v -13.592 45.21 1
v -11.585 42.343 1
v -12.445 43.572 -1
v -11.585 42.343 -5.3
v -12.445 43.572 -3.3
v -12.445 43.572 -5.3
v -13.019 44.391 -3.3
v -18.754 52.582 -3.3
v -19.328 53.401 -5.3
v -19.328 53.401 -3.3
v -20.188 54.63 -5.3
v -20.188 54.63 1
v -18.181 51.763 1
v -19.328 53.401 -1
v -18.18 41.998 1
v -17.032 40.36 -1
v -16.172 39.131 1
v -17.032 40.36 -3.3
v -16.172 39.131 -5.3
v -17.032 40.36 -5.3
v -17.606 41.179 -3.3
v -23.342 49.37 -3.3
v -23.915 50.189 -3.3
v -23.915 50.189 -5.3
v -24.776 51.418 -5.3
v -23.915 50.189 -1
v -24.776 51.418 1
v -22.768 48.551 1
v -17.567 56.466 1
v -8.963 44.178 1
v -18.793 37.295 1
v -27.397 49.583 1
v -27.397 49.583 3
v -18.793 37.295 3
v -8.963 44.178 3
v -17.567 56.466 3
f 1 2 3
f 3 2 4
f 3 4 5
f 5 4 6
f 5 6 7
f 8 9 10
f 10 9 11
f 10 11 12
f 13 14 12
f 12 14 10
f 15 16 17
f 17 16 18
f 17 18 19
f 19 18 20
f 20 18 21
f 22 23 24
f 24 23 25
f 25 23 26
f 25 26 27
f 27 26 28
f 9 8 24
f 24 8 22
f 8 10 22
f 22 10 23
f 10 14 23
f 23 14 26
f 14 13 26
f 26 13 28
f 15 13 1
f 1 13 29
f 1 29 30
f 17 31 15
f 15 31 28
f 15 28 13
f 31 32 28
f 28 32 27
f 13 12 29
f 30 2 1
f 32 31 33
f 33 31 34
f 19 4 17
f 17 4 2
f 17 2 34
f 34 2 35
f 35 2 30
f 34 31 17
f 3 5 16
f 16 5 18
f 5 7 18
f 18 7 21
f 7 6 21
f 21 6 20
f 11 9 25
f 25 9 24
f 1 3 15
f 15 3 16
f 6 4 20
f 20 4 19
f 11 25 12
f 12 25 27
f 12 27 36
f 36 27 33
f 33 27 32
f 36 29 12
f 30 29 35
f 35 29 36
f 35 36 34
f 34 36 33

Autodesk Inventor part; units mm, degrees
ref_plane "YZ Plane" through (0, 0, 0) normal (1, 0, 0) x (0, 1, 0)
ref_plane "XZ Plane" through (0, 0, 0) normal (0, 1, 0) x (-1, 0, 0)
ref_plane "XY Plane" through (0, 0, 0) normal (0, 0, 1) x (1, 0, 0)
ref_plane "Arbeitsebene1" through (8.2312, -3.2392, 2) normal (0, 0, 1) x (1, 0, 0)
sketch "Skizze1" plane through (8.2312, -3.2392, 2) normal (0, 0, 1) x (1, 0, 0)
  arc A0 (-29.666, 52.3362) -> (-30.2278, 49.15) centre (-26.4114, 50.1197) ccw projected
  line L0 (-30.4697, 49.0886) -> (-31.8651, 51.0813) projected
  line L1 (-27.3731, 44.6661) -> (-28.7684, 46.6589) projected
  line L2 (-25.3803, 46.0614) -> (-27.3731, 44.6661) projected
  spline S0 degree 3 poles (-25.3803, 46.0614) (-25.4758, 46.0372) (-25.5717, 46.0164) (-25.765, 45.9815) (-25.8623, 45.9675) (-25.9823, 45.9545) (-26.0046, 45.9522) (-26.0633, 45.9468) (-26.0993, 45.944) (-26.1701, 45.9393) (-26.2048, 45.9374) (-26.2421, 45.9359) (-26.244, 45.9358) (-26.3578, 45.9313) (-26.4696, 45.9314) (-26.6928, 45.9405) (-26.8042, 45.9495) (-26.9899, 45.972) (-27.0643, 45.983) (-27.2355, 46.0132) (-27.3315, 46.0336) (-27.5218, 46.0812) (-27.6161, 46.1083) (-27.7358, 46.1473) (-27.7619, 46.1561) (-27.8204, 46.1765) (-27.8532, 46.1884) (-27.9183, 46.2129) (-27.9507, 46.2255) (-27.9876, 46.2405) (-27.9928, 46.2426) (-28.0892, 46.282) (-28.1788, 46.3225) (-28.3547, 46.4094) (-28.4411, 46.456) (-28.6083, 46.5538) (-28.6891, 46.6048) (-28.7684, 46.6589) knots 0 0 0 0 0.084049 0.084049 0.16831 0.16831 0.1875 0.1875 0.21875 0.21875 0.248427 0.248427 0.25 0.25 0.343462 0.343462 0.437098 0.437098 0.5 0.5 0.582124 0.582124 0.664424 0.664424 0.6875 0.6875 0.716281 0.716281 0.74522 0.74522 0.75 0.75 0.834095 0.834095 0.918237 0.918237 1 1 1 1 projected
  line L3 (-20.9578, 49.1581) -> (-22.9506, 47.7627) projected
  line L4 (-22.3532, 51.1509) -> (-20.9578, 49.1581) projected
  spline S1 degree 3 poles (-22.3532, 51.1509) (-22.3289, 51.0554) (-22.3081, 50.9594) (-22.2732, 50.7662) (-22.2592, 50.6689) (-22.2462, 50.5488) (-22.244, 50.5265) (-22.2385, 50.4679) (-22.2357, 50.4318) (-22.231, 50.3611) (-22.2292, 50.3263) (-22.2276, 50.289) (-22.2276, 50.2871) (-22.2231, 50.1733) (-22.2231, 50.0616) (-22.2322, 49.8384) (-22.2412, 49.727) (-22.2637, 49.5413) (-22.2747, 49.4668) (-22.3049, 49.2957) (-22.3254, 49.1997) (-22.3729, 49.0094) (-22.4, 48.915) (-22.4391, 48.7954) (-22.4479, 48.7693) (-22.4682, 48.7107) (-22.4801, 48.678) (-22.5046, 48.6128) (-22.5173, 48.5804) (-22.5322, 48.5436) (-22.5343, 48.5384) (-22.5738, 48.442) (-22.6142, 48.3524) (-22.7012, 48.1764) (-22.7477, 48.09) (-22.8455, 47.9229) (-22.8966, 47.842) (-22.9506, 47.7627) knots 0 0 0 0 0.084049 0.084049 0.16831 0.16831 0.1875 0.1875 0.21875 0.21875 0.248427 0.248427 0.25 0.25 0.343462 0.343462 0.437098 0.437098 0.5 0.5 0.582124 0.582124 0.664424 0.664424 0.6875 0.6875 0.716281 0.716281 0.74522 0.74522 0.75 0.75 0.834095 0.834095 0.918237 0.918237 1 1 1 1 projected
  line L5 (-25.4498, 55.5734) -> (-24.0545, 53.5806) projected
  line L6 (-27.4426, 54.178) -> (-25.4498, 55.5734) projected
  spline S2 degree 3 poles (-27.4426, 54.178) (-27.3471, 54.2023) (-27.2511, 54.2231) (-27.0579, 54.2579) (-26.9606, 54.272) (-26.8406, 54.285) (-26.8183, 54.2872) (-26.7596, 54.2926) (-26.7236, 54.2955) (-26.6528, 54.3001) (-26.6181, 54.302) (-26.5807, 54.3035) (-26.5789, 54.3036) (-26.4651, 54.3081) (-26.3533, 54.308) (-26.1301, 54.299) (-26.0187, 54.29) (-25.833, 54.2675) (-25.7586, 54.2564) (-25.5874, 54.2262) (-25.4914, 54.2058) (-25.3011, 54.1582) (-25.2067, 54.1311) (-25.0871, 54.0921) (-25.061, 54.0833) (-25.0025, 54.0629) (-24.9697, 54.0511) (-24.9046, 54.0266) (-24.8722, 54.0139) (-24.8353, 53.999) (-24.8301, 53.9969) (-24.7337, 53.9574) (-24.6441, 53.917) (-24.4681, 53.83) (-24.3817, 53.7835) (-24.2146, 53.6857) (-24.1337, 53.6346) (-24.0545, 53.5806) knots 0 0 0 0 0.084049 0.084049 0.16831 0.16831 0.1875 0.1875 0.21875 0.21875 0.248427 0.248427 0.25 0.25 0.343462 0.343462 0.437098 0.437098 0.5 0.5 0.582124 0.582124 0.664424 0.664424 0.6875 0.6875 0.716281 0.716281 0.74522 0.74522 0.75 0.75 0.834095 0.834095 0.918237 0.918237 1 1 1 1 projected
  line L7 (-27.0245, 40.5346) -> (-35.6282, 52.8219)
  line L8 (-35.6282, 52.8219) -> (-25.7984, 59.7048)
  line L9 (-25.7984, 59.7048) -> (-17.1947, 47.4175)
  line L10 (-17.1947, 47.4175) -> (-27.0245, 40.5346)
  line L11 (-27.0245, 40.5346) -> (-25.7984, 59.7048) construction
  line L12 (-35.6282, 52.8219) -> (-17.1947, 47.4175) construction
  line L13 (-27.0245, 40.5346) -> (-12.0245, 40.5346) construction
  circle A1 centre (-26.4114, 50.1197) radius 4.5
  circle A2 centre (-26.4114, 50.1197) radius 3.95
  point P0 (-8.2312, 3.2392)
  point P1 (-24.4756, 54.182)
  point P2 (-21.932, 50.5494)
  point P3 (-22.3491, 48.1839)
  point P4 (-25.9817, 45.6403)
  point P5 (-28.3473, 46.0574)
  point P6 (-26.8411, 54.5992)
  dimension "d0" = 125
  dimension "d1" = 15
  dimension "d2" = 12
  dimension "d3" = 9
  dimension "d16" = 7.9
extrude "Extrusion1" add sketch "Skizze1" along normal mid plane 2 contours L1 A1 L2 | A1 L6 S2 L5 L4 S1 L3 L2 S0 L1 | L1 S0 L2 A1 | A1 L4 L3 | L3 S1 L4 A1 | A1 L5 S2 L6 | L6 L5 A1 | L7 L8 L9 L10 | A2
sketch "Skizze2" plane through (-17.5671, 56.4656, 3) normal (0.819152, 0.5735764, 0) x (0, 0, -1)
  line L0 (2, 0) -> (2, -15) projected
  line L1 (2, 0) -> (0, 0) projected
  line L2 (0, -15) -> (0, 0) projected
  line L3 (0, -15) -> (2, -15) projected
  line L4 (2, 0) -> (2, -15) projected
  line L5 (2, -15) -> (8.3, -15)
  line L6 (8.3, -15) -> (8.3, -13.5)
  line L7 (8.3, -13.5) -> (6.3, -12.5)
  line L8 (6.3, -12.5) -> (6.3, -13.5)
  line L9 (6.3, -13.5) -> (2, -13.5)
  line L10 (6, -33.1362) -> (6, 10.1688) projected
  point P0 (3, -56.33)
  point P1 (2, -13.5)
  dimension "d6" = 1.5
  dimension "d7" = 0
  dimension "d8" = 1
  dimension "d9" = 0.3
  dimension "d10" = 2
extrude "Extrusion2" add sketch "Skizze2" against normal up to surface (12 mm away) contours L9 L10 L5 L0 | L9 L8 L7 L6 L5 L10
chamfer "Fase1" distance 2 angle 45 1 edges at (-14.7388, 41.9656, 1)
ref_plane "Arbeitsebene2" through (-13.2653, 50.322, -5.3) normal (0.5735764, -0.819152, 0) x (0.819152, 0.5735764, 0)
mirror "Spiegeln1" about plane through (-13.2653, 50.322, -5.3) normal (0.5735764, -0.819152, 0) of "Extrusion2", "Fase1"
sketch "Skizze3" plane through (-27.3969, 49.5827, 3) normal (-0.5735764, 0.819152, 0) x (0.819152, 0.5735764, 0)
  line L0 (0, 8.3) -> (0, 0) projected
  line L1 (12, 8.3) -> (12, 0) projected
  line L2 (0, 8.3) -> (3.2, 8.3)
  line L3 (3.2, 8.3) -> (3.2, 2)
  line L4 (3.2, 2) -> (0, 2)
  line L5 (0, 2) -> (0, 8.3)
  line L6 (12, 8.3) -> (8.8, 8.3)
  line L7 (8.8, 8.3) -> (8.8, 2)
  line L8 (8.8, 2) -> (12, 2)
  line L9 (12, 2) -> (12, 8.3)
  point P0 (-5.9972, 3)
  point P1 (12, 2)
  point P2 (0, 2)
  dimension "d19" = 3.2
  dimension "d20" = 3.2
extrude "Extrusion3" cut sketch "Skizze3" against normal through all
properties part number "Omniscope_Camera_fix"
